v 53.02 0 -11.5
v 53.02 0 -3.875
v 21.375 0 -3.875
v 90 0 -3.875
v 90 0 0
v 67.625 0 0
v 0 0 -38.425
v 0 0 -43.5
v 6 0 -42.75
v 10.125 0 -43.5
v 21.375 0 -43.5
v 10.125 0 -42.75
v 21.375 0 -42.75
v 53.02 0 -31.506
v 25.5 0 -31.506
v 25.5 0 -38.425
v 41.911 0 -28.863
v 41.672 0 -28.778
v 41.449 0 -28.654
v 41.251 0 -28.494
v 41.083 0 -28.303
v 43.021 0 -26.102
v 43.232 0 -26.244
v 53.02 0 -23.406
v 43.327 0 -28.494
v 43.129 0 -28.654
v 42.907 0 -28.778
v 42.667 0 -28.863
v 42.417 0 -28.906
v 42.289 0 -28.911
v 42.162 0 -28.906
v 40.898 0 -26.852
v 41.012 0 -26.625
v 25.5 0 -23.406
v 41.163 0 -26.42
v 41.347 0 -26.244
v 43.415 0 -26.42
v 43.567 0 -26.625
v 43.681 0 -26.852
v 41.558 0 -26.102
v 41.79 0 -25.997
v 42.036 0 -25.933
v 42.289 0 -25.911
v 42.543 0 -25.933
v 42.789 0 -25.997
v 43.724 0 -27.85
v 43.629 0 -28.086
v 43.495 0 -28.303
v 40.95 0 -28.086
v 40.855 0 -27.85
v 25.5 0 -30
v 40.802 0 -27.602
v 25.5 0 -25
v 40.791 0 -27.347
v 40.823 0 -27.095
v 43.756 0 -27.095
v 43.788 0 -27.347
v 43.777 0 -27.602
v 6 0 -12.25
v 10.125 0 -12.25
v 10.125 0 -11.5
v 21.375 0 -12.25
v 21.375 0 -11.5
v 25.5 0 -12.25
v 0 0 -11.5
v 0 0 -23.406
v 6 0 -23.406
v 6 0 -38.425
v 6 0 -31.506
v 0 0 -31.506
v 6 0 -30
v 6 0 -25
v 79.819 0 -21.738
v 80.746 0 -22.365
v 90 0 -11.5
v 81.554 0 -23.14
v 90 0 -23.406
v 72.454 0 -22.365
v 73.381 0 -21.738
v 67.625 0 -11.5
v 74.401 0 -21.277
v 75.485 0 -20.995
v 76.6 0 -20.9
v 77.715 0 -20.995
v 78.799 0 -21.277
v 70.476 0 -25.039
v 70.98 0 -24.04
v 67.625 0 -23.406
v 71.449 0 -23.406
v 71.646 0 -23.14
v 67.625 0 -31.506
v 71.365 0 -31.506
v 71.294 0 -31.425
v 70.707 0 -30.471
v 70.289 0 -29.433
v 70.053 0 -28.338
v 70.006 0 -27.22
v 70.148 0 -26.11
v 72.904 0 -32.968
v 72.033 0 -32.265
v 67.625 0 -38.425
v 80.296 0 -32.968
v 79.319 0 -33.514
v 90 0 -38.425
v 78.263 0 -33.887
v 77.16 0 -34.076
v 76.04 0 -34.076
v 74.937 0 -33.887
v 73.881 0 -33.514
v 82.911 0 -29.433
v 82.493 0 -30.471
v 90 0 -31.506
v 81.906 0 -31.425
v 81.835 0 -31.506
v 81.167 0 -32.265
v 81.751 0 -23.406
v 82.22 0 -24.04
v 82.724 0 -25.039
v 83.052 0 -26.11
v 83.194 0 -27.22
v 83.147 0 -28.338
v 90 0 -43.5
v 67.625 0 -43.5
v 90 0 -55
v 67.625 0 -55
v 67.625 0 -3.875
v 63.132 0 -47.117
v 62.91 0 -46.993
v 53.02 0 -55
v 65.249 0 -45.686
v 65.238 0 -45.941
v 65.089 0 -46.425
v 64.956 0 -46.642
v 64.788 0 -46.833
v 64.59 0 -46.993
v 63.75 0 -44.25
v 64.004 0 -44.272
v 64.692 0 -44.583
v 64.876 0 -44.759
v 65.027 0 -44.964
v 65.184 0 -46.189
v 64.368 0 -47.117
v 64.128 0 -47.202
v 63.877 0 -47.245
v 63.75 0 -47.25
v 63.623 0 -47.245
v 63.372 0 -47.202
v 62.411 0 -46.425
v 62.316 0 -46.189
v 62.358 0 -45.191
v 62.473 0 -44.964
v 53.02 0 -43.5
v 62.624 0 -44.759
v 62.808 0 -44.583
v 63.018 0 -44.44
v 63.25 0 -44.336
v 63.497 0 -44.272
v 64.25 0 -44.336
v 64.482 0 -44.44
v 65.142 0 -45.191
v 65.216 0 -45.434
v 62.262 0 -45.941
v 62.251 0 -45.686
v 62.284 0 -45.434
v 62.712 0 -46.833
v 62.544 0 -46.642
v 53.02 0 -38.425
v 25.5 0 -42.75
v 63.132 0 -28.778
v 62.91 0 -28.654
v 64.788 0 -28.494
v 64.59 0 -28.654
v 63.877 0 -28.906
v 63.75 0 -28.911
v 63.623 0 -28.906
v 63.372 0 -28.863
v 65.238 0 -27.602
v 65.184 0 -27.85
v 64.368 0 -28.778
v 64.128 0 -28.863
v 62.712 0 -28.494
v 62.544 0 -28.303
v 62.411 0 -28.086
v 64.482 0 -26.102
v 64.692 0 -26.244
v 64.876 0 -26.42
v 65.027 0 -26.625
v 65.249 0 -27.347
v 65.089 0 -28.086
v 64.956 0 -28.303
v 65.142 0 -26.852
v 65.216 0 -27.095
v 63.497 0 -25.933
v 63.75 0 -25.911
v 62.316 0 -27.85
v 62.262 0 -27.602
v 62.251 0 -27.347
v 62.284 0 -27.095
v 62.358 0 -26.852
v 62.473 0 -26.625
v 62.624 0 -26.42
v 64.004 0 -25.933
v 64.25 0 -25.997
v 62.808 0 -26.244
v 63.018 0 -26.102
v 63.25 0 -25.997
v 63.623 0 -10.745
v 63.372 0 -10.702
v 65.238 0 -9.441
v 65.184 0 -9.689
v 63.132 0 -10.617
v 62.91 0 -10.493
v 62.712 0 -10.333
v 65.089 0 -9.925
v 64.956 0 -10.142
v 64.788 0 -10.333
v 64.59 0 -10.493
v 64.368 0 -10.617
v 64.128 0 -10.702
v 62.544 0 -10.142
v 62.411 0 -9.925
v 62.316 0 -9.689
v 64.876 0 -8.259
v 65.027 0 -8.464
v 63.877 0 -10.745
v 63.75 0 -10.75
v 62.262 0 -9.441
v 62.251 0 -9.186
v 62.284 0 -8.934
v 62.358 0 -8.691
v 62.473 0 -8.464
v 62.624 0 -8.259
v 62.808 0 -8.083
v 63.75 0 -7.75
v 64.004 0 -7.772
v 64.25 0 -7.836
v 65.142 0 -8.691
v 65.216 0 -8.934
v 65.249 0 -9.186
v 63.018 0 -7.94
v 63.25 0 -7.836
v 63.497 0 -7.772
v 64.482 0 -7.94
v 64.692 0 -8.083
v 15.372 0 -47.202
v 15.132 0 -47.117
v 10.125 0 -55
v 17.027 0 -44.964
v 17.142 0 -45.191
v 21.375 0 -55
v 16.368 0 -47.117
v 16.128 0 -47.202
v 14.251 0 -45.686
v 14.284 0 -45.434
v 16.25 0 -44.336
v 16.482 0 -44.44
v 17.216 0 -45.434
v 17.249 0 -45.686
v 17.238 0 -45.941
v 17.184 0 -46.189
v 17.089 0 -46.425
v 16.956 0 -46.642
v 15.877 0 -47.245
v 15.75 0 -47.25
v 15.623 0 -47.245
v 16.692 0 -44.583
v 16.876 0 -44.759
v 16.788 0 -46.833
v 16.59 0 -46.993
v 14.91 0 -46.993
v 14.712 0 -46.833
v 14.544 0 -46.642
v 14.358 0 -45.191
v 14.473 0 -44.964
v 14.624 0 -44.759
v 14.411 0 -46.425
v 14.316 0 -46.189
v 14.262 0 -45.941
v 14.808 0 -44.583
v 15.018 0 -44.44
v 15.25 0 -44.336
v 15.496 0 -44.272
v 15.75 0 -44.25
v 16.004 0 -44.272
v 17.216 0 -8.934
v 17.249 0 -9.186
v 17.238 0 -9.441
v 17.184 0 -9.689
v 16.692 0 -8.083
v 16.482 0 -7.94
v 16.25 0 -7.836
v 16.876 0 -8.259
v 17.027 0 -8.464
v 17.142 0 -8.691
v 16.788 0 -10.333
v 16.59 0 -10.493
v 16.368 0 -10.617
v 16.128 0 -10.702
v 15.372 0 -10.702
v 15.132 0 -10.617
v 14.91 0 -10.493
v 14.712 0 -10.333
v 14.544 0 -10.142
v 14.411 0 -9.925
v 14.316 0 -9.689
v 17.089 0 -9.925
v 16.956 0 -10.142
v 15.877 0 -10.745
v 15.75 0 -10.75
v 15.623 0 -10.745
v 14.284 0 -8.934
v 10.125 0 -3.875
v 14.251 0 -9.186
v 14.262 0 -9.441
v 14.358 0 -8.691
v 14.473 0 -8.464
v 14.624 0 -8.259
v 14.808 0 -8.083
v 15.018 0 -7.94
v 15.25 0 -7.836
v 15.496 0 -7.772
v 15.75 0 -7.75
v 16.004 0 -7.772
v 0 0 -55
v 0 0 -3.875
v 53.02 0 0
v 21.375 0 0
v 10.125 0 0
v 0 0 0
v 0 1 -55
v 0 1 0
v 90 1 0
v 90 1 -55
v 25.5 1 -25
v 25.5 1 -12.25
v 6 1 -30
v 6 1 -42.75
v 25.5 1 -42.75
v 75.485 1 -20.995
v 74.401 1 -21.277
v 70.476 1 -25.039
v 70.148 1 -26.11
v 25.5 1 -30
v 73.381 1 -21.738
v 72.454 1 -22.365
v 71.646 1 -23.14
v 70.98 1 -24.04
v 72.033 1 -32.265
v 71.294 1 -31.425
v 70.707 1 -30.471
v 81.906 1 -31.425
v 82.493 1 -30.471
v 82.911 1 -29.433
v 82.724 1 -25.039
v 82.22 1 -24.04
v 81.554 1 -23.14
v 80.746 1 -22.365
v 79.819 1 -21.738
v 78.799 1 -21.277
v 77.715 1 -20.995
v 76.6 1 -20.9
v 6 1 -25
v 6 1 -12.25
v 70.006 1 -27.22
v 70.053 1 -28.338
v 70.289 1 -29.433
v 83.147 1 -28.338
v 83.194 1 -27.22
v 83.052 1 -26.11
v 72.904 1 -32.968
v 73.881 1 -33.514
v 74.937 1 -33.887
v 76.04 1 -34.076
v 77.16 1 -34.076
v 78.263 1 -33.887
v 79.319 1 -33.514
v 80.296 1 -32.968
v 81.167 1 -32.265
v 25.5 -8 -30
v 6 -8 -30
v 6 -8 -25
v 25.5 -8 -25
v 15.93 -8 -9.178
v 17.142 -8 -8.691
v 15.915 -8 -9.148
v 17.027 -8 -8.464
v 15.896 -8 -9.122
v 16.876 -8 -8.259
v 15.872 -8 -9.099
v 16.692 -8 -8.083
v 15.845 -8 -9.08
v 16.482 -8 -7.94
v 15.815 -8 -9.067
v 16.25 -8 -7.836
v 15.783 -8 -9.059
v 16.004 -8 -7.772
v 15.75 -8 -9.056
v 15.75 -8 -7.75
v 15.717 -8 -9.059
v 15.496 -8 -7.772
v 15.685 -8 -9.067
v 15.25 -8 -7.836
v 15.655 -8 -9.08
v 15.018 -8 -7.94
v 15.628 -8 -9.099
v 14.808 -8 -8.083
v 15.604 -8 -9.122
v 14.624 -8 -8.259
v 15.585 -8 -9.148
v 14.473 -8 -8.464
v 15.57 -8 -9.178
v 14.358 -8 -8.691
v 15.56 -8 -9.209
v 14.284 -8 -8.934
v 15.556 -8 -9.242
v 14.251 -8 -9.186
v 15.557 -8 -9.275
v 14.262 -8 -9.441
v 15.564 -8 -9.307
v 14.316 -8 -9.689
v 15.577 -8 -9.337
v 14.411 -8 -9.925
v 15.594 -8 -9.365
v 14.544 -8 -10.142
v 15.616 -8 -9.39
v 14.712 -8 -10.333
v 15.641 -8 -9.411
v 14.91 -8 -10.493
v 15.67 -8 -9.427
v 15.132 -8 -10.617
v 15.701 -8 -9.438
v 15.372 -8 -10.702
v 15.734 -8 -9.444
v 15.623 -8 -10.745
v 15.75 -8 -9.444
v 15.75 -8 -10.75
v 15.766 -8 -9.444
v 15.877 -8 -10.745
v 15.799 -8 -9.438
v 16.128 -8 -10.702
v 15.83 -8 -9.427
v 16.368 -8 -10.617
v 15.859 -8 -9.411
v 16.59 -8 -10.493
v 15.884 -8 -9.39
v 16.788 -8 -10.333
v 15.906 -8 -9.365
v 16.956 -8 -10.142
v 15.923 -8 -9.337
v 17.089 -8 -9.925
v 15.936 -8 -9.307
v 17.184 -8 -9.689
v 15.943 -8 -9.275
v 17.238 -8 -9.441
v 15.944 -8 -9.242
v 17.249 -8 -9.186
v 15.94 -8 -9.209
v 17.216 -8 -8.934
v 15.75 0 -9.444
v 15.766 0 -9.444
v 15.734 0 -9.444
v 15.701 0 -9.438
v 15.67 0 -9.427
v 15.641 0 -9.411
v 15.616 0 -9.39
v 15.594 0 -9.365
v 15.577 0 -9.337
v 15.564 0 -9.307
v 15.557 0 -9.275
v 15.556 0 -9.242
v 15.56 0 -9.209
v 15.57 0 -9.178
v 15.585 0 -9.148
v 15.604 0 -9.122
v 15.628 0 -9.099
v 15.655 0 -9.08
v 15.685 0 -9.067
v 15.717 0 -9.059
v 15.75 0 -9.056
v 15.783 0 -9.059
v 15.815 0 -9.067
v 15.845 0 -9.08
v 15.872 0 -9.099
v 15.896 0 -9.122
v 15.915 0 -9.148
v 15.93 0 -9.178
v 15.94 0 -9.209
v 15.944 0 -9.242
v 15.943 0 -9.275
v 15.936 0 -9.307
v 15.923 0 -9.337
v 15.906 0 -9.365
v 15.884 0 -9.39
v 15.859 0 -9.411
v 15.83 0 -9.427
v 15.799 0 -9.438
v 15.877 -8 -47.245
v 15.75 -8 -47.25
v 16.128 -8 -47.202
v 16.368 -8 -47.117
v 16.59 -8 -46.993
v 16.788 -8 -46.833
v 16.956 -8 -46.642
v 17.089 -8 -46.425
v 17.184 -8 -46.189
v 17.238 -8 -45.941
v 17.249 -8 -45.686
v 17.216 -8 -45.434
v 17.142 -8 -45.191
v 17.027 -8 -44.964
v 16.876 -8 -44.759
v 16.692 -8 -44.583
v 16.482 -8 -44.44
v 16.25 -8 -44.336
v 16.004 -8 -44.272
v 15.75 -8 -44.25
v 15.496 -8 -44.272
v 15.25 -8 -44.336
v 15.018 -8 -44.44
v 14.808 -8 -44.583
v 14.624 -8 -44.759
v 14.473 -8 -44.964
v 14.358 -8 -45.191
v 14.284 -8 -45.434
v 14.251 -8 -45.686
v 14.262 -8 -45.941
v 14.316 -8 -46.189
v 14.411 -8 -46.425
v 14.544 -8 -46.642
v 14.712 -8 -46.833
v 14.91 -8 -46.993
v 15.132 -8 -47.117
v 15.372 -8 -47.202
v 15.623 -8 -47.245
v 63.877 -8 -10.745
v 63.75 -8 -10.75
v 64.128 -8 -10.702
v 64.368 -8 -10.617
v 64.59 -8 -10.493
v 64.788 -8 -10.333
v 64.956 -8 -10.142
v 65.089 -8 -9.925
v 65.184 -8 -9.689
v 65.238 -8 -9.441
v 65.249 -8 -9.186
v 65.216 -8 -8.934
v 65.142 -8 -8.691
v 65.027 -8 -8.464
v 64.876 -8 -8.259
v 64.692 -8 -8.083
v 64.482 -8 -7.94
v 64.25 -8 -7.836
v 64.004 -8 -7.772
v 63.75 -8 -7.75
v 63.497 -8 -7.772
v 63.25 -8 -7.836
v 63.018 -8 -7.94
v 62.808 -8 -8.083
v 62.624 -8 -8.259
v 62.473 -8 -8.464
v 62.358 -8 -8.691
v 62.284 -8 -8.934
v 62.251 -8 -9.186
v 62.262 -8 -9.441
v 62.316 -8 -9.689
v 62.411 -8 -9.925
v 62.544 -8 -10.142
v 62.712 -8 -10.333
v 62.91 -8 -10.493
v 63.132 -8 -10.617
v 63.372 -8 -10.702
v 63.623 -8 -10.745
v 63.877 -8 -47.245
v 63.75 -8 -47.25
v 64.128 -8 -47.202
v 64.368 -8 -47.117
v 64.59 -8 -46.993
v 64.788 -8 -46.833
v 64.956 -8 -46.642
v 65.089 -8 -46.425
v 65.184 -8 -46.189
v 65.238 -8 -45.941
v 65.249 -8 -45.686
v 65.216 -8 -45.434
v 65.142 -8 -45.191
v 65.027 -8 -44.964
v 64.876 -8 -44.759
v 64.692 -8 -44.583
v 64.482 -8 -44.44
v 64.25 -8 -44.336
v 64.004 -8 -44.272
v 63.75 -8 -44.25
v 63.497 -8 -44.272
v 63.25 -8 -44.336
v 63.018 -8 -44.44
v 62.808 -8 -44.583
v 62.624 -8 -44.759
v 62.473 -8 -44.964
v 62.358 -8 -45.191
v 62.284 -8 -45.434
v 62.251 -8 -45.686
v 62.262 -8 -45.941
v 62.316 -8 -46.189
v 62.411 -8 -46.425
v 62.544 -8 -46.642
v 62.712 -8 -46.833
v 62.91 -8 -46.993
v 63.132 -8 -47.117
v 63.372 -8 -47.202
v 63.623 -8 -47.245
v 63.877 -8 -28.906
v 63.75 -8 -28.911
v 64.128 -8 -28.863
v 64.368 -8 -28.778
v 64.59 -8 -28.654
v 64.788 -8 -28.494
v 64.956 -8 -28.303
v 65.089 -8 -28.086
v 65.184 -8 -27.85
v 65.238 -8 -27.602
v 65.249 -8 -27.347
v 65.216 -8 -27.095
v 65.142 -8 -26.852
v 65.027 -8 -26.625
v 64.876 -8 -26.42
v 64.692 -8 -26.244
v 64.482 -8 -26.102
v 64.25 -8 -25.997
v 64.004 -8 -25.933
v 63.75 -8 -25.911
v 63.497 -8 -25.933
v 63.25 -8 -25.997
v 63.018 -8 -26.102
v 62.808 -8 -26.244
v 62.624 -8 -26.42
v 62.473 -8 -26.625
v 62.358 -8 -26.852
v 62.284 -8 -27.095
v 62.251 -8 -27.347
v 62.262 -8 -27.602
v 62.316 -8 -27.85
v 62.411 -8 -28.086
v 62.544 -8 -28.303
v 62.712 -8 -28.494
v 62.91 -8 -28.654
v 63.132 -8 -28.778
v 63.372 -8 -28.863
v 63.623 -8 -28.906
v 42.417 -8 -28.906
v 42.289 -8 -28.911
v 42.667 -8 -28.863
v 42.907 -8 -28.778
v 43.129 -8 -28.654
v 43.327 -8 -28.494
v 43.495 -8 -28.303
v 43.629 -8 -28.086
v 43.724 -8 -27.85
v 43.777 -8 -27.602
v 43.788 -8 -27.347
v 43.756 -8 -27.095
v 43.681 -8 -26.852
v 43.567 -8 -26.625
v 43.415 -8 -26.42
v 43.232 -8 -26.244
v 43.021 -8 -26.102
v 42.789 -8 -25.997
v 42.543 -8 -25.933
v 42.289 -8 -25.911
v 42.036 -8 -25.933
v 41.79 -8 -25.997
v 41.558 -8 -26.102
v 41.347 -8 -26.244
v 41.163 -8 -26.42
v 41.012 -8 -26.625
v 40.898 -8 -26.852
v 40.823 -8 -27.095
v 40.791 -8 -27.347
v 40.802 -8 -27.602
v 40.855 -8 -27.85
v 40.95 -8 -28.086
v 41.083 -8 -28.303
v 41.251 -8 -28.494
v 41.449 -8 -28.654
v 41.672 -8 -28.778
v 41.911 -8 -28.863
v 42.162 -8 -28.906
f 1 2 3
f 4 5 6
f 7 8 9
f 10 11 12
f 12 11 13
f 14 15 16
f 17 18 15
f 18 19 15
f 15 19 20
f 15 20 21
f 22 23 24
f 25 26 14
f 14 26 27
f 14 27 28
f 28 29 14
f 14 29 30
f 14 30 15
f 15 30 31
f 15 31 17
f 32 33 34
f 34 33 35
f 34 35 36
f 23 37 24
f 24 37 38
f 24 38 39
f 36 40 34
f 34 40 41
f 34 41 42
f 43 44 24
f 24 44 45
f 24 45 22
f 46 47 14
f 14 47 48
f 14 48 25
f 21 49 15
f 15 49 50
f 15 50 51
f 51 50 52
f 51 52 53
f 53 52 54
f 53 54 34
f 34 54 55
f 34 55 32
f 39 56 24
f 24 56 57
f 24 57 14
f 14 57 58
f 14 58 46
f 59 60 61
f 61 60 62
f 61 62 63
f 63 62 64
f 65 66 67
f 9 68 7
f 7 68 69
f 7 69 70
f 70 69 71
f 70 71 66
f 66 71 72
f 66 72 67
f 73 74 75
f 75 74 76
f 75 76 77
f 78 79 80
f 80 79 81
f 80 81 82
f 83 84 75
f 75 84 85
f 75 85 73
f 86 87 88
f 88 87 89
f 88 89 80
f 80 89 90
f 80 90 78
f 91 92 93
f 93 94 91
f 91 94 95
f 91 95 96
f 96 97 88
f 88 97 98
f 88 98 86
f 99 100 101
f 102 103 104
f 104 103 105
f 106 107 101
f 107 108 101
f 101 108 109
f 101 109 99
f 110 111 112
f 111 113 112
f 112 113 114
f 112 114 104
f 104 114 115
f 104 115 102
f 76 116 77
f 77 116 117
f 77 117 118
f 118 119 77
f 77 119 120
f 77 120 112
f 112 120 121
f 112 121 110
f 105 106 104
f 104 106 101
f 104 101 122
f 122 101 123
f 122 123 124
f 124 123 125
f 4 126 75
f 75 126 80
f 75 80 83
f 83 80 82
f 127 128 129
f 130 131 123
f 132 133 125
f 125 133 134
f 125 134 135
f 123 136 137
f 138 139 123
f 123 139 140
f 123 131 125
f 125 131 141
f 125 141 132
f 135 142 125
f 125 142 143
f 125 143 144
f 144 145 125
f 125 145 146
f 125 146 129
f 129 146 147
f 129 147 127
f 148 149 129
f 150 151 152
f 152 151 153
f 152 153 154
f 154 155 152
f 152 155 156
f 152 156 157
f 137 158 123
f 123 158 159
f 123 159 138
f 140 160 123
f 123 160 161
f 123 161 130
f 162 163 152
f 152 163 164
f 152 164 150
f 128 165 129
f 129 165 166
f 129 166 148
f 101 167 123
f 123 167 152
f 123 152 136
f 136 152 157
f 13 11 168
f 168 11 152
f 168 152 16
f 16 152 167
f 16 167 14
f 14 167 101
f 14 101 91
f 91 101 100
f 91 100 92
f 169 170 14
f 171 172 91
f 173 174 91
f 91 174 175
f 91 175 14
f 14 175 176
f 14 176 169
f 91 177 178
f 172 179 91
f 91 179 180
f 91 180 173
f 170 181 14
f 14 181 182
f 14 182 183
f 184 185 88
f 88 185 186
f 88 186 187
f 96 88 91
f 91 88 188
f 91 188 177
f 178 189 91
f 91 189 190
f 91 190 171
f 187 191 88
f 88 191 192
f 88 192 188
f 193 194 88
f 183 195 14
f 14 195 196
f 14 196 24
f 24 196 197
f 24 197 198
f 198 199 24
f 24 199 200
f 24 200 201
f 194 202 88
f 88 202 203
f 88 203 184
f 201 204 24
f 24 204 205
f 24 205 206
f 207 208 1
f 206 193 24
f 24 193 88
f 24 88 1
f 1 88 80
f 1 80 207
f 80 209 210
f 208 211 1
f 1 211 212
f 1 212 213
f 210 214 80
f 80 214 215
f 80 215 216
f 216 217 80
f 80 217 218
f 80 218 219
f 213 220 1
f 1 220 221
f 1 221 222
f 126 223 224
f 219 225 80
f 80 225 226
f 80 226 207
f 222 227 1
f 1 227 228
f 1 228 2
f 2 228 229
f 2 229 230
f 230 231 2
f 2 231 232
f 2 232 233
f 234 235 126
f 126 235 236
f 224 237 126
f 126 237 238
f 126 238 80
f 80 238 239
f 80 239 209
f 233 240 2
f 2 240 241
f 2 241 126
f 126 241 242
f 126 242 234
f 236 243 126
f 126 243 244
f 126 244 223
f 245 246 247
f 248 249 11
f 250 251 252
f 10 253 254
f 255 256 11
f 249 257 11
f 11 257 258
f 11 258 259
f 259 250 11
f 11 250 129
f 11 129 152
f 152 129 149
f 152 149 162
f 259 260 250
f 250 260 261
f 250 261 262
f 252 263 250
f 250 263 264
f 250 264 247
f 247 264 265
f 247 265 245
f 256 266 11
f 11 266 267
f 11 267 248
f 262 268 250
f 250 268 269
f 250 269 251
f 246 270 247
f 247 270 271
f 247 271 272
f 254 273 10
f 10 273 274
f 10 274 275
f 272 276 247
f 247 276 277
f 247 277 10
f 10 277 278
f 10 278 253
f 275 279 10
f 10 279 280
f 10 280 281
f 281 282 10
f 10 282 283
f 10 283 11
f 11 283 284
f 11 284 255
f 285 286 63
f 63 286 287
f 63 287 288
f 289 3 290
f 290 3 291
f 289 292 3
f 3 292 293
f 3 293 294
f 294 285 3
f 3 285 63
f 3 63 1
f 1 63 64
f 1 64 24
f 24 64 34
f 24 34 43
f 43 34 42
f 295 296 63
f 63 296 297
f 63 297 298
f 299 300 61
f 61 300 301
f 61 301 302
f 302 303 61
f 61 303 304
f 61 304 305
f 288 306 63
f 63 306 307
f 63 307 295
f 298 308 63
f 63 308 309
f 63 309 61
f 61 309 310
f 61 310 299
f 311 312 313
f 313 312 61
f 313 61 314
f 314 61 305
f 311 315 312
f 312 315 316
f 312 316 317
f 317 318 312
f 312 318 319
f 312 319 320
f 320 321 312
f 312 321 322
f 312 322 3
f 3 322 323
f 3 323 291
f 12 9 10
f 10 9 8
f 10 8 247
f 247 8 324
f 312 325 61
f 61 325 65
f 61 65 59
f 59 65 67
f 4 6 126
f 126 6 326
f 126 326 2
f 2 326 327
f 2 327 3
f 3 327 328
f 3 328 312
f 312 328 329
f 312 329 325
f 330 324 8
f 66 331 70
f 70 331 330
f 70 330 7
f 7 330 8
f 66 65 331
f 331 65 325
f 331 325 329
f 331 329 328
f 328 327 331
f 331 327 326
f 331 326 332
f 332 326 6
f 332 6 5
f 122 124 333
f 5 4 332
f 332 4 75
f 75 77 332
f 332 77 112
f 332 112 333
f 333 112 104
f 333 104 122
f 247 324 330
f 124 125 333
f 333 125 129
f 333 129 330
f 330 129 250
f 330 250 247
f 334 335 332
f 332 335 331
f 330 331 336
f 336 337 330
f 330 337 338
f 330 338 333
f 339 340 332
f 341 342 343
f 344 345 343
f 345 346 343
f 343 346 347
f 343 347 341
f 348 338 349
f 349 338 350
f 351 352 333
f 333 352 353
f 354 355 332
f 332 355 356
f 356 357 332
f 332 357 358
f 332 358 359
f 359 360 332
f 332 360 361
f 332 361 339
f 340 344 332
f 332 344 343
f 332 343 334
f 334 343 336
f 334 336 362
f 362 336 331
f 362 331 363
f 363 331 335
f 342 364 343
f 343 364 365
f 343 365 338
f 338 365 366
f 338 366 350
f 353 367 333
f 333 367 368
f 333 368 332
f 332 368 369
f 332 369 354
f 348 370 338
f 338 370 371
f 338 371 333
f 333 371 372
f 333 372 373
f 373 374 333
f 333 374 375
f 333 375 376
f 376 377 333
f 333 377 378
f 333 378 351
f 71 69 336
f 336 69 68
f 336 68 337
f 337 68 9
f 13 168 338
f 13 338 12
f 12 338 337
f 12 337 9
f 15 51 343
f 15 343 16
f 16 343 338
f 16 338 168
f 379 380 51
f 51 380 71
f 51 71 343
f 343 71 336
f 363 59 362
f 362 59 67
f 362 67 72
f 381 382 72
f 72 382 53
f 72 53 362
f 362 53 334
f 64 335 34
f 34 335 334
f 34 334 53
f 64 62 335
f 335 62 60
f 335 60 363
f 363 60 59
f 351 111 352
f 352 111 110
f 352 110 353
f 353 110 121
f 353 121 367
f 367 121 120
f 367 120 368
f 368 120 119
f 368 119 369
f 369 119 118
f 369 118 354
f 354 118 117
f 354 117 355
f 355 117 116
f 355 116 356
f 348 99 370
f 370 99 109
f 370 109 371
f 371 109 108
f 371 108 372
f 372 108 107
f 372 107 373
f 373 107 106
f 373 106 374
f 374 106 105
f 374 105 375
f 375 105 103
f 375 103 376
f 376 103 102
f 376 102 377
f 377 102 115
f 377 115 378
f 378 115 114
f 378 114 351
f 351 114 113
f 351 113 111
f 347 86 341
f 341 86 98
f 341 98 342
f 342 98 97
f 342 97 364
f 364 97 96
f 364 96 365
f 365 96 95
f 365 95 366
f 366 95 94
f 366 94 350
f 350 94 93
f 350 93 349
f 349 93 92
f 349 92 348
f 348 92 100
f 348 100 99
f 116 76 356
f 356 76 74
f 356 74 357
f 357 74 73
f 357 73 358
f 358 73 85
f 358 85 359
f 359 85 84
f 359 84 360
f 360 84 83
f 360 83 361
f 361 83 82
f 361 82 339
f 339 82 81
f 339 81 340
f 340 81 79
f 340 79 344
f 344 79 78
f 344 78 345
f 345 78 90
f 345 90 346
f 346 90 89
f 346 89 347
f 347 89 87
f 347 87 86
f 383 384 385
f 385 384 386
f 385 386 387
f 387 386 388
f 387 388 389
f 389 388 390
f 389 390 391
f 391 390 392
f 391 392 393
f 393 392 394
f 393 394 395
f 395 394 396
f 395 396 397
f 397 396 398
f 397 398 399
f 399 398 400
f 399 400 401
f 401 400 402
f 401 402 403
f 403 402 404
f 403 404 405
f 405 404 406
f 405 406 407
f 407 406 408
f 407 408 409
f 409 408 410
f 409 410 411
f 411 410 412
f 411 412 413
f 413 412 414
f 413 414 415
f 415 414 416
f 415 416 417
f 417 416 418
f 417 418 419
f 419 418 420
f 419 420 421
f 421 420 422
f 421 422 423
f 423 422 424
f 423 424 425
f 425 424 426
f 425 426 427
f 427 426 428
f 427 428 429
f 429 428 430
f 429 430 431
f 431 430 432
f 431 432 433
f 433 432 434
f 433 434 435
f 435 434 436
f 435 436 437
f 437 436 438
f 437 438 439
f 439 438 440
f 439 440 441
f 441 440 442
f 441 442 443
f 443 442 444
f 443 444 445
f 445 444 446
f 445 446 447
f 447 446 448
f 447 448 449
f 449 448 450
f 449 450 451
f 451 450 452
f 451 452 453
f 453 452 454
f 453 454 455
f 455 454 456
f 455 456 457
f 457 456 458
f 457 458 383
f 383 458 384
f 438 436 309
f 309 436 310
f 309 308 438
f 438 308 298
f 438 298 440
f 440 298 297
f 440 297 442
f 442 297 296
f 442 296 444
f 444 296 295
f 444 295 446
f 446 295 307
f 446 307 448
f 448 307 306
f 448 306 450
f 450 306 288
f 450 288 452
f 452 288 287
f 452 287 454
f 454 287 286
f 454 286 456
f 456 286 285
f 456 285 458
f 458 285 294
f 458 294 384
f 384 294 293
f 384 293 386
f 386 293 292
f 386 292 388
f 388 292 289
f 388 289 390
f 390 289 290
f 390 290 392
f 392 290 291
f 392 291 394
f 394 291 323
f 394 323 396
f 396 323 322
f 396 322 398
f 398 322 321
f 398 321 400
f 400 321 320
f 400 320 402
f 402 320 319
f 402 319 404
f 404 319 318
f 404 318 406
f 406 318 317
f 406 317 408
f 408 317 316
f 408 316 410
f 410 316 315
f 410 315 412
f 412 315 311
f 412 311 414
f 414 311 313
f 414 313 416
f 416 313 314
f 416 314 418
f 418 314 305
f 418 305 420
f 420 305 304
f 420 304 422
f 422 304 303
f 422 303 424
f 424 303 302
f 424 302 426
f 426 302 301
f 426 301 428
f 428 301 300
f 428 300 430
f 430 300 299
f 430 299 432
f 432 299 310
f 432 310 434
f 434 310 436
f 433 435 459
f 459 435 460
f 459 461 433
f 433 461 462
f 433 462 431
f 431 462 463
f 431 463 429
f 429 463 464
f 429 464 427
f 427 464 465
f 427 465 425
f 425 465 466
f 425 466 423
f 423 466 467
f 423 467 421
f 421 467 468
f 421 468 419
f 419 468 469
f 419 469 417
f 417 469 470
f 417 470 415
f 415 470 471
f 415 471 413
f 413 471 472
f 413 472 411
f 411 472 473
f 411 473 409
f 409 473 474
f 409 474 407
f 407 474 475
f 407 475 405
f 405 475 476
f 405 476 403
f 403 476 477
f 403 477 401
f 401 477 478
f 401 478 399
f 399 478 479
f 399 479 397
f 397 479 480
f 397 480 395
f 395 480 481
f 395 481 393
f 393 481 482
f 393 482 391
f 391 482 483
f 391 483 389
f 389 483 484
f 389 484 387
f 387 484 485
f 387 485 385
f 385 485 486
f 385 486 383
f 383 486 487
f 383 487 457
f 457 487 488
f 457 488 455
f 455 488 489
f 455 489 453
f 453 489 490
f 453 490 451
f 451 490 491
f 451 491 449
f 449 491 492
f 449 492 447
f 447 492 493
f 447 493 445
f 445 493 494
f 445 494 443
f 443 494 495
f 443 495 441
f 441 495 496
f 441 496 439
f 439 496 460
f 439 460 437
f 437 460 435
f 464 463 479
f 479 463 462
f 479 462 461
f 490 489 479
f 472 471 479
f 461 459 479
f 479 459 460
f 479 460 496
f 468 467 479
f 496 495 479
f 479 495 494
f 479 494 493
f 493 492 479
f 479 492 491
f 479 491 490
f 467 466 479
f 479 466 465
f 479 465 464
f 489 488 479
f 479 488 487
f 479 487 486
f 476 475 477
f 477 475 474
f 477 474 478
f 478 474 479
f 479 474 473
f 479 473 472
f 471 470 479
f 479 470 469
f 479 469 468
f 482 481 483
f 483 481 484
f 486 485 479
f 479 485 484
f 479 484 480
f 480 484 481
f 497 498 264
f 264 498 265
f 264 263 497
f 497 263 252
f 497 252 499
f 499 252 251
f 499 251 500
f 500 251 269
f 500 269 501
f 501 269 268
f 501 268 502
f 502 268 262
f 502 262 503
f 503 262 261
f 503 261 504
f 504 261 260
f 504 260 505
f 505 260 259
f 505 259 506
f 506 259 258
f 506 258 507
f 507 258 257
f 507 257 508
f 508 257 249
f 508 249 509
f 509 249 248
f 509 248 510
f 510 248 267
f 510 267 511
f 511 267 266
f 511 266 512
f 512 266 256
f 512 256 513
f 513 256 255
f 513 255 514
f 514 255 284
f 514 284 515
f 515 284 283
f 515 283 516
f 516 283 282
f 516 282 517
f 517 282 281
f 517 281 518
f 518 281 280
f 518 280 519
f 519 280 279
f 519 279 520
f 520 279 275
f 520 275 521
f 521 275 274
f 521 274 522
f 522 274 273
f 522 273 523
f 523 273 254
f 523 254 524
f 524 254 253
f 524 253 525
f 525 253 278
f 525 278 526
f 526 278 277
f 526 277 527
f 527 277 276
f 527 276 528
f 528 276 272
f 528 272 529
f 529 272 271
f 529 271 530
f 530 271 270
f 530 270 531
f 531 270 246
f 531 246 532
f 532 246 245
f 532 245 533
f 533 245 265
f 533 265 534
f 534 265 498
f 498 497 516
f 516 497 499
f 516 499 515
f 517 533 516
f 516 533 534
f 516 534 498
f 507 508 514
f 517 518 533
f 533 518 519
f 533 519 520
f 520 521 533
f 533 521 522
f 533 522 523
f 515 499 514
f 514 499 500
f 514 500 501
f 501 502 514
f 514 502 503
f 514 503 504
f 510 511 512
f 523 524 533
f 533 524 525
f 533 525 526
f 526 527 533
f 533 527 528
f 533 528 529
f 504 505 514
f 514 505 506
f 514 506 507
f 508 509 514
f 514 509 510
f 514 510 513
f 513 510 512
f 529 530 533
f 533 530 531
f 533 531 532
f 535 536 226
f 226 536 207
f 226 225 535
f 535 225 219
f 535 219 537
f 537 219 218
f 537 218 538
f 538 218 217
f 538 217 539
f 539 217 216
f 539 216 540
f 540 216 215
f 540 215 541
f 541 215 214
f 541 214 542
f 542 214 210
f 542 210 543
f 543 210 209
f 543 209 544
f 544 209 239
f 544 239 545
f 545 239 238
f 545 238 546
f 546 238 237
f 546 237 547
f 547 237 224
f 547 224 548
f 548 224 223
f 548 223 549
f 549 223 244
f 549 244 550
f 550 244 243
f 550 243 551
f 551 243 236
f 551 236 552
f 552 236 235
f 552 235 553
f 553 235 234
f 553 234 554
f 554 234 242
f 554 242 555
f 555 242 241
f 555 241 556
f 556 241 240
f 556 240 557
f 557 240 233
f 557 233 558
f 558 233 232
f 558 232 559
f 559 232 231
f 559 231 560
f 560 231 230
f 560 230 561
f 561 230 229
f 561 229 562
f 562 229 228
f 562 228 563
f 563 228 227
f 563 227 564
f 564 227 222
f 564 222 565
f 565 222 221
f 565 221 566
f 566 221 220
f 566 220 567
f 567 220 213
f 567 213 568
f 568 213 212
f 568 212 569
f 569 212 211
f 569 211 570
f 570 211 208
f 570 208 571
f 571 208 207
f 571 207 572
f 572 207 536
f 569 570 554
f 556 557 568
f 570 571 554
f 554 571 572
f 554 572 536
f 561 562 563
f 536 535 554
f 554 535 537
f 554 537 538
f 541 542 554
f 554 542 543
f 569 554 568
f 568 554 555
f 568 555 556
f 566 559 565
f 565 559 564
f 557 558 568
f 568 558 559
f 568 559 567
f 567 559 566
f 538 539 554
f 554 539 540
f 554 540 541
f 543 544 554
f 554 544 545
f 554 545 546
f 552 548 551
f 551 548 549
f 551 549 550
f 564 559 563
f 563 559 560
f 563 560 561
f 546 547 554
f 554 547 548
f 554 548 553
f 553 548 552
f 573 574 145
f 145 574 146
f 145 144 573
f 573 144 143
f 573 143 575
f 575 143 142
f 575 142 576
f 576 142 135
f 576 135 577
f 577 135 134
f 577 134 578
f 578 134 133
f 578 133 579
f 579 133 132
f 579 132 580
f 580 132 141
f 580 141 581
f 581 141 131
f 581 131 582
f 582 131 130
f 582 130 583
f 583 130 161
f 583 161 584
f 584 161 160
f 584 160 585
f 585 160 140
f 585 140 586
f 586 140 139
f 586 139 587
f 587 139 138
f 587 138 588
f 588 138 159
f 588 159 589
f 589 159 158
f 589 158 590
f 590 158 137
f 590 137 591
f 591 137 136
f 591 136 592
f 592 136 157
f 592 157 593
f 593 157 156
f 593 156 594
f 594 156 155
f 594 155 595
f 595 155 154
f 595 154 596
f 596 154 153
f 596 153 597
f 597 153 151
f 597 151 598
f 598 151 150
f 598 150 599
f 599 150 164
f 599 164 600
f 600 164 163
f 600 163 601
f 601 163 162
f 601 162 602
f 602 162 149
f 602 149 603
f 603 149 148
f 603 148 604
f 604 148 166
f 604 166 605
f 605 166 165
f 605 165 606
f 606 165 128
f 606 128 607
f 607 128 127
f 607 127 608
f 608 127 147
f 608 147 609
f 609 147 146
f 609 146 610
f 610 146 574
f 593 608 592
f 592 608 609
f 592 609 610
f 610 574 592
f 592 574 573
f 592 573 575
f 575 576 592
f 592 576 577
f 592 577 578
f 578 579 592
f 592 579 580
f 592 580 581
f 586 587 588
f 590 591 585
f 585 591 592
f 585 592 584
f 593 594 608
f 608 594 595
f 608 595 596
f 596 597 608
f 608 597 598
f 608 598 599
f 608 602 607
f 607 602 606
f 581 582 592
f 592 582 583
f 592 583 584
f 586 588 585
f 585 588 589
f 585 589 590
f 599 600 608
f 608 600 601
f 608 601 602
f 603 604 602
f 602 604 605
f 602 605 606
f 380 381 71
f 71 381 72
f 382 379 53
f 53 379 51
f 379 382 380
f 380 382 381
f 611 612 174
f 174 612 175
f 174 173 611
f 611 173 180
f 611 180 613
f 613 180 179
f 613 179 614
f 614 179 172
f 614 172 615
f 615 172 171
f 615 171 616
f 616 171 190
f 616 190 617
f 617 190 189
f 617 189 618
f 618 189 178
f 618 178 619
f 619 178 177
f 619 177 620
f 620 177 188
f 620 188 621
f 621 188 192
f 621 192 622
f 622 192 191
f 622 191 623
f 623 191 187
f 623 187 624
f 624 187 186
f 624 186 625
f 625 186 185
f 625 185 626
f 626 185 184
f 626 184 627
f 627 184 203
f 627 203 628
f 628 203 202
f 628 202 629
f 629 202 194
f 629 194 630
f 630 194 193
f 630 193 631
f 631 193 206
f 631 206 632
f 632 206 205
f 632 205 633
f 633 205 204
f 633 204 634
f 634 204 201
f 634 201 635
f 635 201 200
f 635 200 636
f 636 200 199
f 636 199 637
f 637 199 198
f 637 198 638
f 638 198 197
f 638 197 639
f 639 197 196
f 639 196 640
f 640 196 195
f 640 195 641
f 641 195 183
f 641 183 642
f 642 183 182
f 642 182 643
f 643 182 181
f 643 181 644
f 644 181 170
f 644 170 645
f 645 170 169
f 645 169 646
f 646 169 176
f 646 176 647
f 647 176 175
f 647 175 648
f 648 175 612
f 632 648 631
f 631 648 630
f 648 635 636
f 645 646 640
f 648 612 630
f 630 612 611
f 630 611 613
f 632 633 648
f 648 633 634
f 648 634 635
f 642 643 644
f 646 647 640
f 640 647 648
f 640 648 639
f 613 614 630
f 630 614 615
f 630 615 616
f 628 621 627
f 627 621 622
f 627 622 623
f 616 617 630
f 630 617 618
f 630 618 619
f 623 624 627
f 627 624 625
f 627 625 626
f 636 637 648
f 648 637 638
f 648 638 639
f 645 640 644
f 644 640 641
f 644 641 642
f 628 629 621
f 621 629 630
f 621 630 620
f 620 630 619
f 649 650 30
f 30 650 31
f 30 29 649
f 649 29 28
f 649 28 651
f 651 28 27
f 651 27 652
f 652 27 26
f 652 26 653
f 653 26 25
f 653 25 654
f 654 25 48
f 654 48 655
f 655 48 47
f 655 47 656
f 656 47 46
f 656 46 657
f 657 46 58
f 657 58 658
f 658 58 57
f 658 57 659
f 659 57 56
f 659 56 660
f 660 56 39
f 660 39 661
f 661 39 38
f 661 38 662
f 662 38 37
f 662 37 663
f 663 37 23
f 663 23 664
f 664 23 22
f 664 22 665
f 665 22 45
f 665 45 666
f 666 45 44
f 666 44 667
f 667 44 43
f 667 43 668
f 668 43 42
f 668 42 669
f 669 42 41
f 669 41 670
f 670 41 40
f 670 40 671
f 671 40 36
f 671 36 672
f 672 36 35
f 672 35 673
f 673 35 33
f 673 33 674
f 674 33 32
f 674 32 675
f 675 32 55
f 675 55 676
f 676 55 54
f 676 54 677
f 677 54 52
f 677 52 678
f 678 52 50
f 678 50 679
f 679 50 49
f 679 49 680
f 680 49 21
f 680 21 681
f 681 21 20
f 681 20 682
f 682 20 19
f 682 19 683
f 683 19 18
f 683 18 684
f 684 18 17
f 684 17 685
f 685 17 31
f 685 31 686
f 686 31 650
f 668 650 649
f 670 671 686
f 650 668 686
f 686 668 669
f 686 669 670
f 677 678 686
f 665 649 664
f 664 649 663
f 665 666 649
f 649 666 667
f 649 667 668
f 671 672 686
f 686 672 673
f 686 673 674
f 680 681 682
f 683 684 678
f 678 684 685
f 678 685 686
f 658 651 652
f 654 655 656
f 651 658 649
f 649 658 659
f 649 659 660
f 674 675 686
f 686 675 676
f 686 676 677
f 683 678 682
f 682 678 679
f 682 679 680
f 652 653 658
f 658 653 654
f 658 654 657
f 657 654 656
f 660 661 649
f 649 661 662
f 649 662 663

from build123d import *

# Parameters (mm, degrees)
SKETCH1_W           = 90
SKETCH1_H           = 55
BOSS_EXTRUDE1_DEPTH = 1
SKETCH2_R           = 6.6
SKETCH2_W           = 19.5
SKETCH2_H           = 12.75
CUT_EXTRUDE1_DEPTH  = 106.479855897
SKETCH3_R           = 1.5
SKETCH3_R_2         = 0.194235627
SKETCH3_W           = 19.5
SKETCH3_H           = 5
BOSS_EXTRUDE4_DEPTH = 8


with BuildPart() as part:
    # Sketch1 → Boss-Extrude1 (new body)
    with BuildSketch(Plane(origin=(0, 0, 0), x_dir=(1, 0, 0), z_dir=(0, 1, 0))):
        with Locations((45, 27.5)):
            Rectangle(SKETCH1_W, SKETCH1_H)
    extrude(amount=BOSS_EXTRUDE1_DEPTH)

    # Sketch2 → Cut-Extrude1 (cut, through all)
    with BuildSketch(Plane(origin=(0, 1, 0), x_dir=(1, 0, 0), z_dir=(0, 1, 0))):
        with Locations((76.6, 27.5)):
            Circle(SKETCH2_R)
        with Locations((15.75, 36.375)):
            Rectangle(SKETCH2_W, SKETCH2_H)
        with Locations((15.75, 18.625)):
            Rectangle(SKETCH2_W, SKETCH2_H)
    extrude(amount=-CUT_EXTRUDE1_DEPTH, mode=Mode.SUBTRACT)

    # Sketch3 → Boss-Extrude4 (add)
    # profile 1 of 7: a face of its own
    with BuildSketch(Plane.XZ):
        with Locations((15.75, -9.25)):
            Circle(SKETCH3_R)
        with Locations((15.75, -9.25)):
            Circle(SKETCH3_R_2, mode=Mode.SUBTRACT)
    # profile 2 of 7: a face of its own
    with BuildSketch(Plane.XZ):
        with Locations((15.75, -45.75)):
            Circle(SKETCH3_R)
    # profile 3 of 7: a face of its own
    with BuildSketch(Plane.XZ):
        with Locations((63.75, -9.25)):
            Circle(SKETCH3_R)
    # profile 4 of 7: a face of its own
    with BuildSketch(Plane.XZ):
        with Locations((63.75, -45.75)):
            Circle(SKETCH3_R)
    # profile 5 of 7: a face of its own
    with BuildSketch(Plane.XZ):
        with Locations((63.75, -27.411126752)):
            Circle(SKETCH3_R)
    # profile 6 of 7: a face of its own
    with BuildSketch(Plane.XZ):
        with Locations((42.289365933, -27.411126752)):
            Circle(SKETCH3_R)
    # profile 7 of 7: a face of its own
    with BuildSketch(Plane.XZ):
        with Locations((15.75, -27.5)):
            Rectangle(SKETCH3_W, SKETCH3_H)
    extrude(amount=BOSS_EXTRUDE4_DEPTH)


solid = part.part
